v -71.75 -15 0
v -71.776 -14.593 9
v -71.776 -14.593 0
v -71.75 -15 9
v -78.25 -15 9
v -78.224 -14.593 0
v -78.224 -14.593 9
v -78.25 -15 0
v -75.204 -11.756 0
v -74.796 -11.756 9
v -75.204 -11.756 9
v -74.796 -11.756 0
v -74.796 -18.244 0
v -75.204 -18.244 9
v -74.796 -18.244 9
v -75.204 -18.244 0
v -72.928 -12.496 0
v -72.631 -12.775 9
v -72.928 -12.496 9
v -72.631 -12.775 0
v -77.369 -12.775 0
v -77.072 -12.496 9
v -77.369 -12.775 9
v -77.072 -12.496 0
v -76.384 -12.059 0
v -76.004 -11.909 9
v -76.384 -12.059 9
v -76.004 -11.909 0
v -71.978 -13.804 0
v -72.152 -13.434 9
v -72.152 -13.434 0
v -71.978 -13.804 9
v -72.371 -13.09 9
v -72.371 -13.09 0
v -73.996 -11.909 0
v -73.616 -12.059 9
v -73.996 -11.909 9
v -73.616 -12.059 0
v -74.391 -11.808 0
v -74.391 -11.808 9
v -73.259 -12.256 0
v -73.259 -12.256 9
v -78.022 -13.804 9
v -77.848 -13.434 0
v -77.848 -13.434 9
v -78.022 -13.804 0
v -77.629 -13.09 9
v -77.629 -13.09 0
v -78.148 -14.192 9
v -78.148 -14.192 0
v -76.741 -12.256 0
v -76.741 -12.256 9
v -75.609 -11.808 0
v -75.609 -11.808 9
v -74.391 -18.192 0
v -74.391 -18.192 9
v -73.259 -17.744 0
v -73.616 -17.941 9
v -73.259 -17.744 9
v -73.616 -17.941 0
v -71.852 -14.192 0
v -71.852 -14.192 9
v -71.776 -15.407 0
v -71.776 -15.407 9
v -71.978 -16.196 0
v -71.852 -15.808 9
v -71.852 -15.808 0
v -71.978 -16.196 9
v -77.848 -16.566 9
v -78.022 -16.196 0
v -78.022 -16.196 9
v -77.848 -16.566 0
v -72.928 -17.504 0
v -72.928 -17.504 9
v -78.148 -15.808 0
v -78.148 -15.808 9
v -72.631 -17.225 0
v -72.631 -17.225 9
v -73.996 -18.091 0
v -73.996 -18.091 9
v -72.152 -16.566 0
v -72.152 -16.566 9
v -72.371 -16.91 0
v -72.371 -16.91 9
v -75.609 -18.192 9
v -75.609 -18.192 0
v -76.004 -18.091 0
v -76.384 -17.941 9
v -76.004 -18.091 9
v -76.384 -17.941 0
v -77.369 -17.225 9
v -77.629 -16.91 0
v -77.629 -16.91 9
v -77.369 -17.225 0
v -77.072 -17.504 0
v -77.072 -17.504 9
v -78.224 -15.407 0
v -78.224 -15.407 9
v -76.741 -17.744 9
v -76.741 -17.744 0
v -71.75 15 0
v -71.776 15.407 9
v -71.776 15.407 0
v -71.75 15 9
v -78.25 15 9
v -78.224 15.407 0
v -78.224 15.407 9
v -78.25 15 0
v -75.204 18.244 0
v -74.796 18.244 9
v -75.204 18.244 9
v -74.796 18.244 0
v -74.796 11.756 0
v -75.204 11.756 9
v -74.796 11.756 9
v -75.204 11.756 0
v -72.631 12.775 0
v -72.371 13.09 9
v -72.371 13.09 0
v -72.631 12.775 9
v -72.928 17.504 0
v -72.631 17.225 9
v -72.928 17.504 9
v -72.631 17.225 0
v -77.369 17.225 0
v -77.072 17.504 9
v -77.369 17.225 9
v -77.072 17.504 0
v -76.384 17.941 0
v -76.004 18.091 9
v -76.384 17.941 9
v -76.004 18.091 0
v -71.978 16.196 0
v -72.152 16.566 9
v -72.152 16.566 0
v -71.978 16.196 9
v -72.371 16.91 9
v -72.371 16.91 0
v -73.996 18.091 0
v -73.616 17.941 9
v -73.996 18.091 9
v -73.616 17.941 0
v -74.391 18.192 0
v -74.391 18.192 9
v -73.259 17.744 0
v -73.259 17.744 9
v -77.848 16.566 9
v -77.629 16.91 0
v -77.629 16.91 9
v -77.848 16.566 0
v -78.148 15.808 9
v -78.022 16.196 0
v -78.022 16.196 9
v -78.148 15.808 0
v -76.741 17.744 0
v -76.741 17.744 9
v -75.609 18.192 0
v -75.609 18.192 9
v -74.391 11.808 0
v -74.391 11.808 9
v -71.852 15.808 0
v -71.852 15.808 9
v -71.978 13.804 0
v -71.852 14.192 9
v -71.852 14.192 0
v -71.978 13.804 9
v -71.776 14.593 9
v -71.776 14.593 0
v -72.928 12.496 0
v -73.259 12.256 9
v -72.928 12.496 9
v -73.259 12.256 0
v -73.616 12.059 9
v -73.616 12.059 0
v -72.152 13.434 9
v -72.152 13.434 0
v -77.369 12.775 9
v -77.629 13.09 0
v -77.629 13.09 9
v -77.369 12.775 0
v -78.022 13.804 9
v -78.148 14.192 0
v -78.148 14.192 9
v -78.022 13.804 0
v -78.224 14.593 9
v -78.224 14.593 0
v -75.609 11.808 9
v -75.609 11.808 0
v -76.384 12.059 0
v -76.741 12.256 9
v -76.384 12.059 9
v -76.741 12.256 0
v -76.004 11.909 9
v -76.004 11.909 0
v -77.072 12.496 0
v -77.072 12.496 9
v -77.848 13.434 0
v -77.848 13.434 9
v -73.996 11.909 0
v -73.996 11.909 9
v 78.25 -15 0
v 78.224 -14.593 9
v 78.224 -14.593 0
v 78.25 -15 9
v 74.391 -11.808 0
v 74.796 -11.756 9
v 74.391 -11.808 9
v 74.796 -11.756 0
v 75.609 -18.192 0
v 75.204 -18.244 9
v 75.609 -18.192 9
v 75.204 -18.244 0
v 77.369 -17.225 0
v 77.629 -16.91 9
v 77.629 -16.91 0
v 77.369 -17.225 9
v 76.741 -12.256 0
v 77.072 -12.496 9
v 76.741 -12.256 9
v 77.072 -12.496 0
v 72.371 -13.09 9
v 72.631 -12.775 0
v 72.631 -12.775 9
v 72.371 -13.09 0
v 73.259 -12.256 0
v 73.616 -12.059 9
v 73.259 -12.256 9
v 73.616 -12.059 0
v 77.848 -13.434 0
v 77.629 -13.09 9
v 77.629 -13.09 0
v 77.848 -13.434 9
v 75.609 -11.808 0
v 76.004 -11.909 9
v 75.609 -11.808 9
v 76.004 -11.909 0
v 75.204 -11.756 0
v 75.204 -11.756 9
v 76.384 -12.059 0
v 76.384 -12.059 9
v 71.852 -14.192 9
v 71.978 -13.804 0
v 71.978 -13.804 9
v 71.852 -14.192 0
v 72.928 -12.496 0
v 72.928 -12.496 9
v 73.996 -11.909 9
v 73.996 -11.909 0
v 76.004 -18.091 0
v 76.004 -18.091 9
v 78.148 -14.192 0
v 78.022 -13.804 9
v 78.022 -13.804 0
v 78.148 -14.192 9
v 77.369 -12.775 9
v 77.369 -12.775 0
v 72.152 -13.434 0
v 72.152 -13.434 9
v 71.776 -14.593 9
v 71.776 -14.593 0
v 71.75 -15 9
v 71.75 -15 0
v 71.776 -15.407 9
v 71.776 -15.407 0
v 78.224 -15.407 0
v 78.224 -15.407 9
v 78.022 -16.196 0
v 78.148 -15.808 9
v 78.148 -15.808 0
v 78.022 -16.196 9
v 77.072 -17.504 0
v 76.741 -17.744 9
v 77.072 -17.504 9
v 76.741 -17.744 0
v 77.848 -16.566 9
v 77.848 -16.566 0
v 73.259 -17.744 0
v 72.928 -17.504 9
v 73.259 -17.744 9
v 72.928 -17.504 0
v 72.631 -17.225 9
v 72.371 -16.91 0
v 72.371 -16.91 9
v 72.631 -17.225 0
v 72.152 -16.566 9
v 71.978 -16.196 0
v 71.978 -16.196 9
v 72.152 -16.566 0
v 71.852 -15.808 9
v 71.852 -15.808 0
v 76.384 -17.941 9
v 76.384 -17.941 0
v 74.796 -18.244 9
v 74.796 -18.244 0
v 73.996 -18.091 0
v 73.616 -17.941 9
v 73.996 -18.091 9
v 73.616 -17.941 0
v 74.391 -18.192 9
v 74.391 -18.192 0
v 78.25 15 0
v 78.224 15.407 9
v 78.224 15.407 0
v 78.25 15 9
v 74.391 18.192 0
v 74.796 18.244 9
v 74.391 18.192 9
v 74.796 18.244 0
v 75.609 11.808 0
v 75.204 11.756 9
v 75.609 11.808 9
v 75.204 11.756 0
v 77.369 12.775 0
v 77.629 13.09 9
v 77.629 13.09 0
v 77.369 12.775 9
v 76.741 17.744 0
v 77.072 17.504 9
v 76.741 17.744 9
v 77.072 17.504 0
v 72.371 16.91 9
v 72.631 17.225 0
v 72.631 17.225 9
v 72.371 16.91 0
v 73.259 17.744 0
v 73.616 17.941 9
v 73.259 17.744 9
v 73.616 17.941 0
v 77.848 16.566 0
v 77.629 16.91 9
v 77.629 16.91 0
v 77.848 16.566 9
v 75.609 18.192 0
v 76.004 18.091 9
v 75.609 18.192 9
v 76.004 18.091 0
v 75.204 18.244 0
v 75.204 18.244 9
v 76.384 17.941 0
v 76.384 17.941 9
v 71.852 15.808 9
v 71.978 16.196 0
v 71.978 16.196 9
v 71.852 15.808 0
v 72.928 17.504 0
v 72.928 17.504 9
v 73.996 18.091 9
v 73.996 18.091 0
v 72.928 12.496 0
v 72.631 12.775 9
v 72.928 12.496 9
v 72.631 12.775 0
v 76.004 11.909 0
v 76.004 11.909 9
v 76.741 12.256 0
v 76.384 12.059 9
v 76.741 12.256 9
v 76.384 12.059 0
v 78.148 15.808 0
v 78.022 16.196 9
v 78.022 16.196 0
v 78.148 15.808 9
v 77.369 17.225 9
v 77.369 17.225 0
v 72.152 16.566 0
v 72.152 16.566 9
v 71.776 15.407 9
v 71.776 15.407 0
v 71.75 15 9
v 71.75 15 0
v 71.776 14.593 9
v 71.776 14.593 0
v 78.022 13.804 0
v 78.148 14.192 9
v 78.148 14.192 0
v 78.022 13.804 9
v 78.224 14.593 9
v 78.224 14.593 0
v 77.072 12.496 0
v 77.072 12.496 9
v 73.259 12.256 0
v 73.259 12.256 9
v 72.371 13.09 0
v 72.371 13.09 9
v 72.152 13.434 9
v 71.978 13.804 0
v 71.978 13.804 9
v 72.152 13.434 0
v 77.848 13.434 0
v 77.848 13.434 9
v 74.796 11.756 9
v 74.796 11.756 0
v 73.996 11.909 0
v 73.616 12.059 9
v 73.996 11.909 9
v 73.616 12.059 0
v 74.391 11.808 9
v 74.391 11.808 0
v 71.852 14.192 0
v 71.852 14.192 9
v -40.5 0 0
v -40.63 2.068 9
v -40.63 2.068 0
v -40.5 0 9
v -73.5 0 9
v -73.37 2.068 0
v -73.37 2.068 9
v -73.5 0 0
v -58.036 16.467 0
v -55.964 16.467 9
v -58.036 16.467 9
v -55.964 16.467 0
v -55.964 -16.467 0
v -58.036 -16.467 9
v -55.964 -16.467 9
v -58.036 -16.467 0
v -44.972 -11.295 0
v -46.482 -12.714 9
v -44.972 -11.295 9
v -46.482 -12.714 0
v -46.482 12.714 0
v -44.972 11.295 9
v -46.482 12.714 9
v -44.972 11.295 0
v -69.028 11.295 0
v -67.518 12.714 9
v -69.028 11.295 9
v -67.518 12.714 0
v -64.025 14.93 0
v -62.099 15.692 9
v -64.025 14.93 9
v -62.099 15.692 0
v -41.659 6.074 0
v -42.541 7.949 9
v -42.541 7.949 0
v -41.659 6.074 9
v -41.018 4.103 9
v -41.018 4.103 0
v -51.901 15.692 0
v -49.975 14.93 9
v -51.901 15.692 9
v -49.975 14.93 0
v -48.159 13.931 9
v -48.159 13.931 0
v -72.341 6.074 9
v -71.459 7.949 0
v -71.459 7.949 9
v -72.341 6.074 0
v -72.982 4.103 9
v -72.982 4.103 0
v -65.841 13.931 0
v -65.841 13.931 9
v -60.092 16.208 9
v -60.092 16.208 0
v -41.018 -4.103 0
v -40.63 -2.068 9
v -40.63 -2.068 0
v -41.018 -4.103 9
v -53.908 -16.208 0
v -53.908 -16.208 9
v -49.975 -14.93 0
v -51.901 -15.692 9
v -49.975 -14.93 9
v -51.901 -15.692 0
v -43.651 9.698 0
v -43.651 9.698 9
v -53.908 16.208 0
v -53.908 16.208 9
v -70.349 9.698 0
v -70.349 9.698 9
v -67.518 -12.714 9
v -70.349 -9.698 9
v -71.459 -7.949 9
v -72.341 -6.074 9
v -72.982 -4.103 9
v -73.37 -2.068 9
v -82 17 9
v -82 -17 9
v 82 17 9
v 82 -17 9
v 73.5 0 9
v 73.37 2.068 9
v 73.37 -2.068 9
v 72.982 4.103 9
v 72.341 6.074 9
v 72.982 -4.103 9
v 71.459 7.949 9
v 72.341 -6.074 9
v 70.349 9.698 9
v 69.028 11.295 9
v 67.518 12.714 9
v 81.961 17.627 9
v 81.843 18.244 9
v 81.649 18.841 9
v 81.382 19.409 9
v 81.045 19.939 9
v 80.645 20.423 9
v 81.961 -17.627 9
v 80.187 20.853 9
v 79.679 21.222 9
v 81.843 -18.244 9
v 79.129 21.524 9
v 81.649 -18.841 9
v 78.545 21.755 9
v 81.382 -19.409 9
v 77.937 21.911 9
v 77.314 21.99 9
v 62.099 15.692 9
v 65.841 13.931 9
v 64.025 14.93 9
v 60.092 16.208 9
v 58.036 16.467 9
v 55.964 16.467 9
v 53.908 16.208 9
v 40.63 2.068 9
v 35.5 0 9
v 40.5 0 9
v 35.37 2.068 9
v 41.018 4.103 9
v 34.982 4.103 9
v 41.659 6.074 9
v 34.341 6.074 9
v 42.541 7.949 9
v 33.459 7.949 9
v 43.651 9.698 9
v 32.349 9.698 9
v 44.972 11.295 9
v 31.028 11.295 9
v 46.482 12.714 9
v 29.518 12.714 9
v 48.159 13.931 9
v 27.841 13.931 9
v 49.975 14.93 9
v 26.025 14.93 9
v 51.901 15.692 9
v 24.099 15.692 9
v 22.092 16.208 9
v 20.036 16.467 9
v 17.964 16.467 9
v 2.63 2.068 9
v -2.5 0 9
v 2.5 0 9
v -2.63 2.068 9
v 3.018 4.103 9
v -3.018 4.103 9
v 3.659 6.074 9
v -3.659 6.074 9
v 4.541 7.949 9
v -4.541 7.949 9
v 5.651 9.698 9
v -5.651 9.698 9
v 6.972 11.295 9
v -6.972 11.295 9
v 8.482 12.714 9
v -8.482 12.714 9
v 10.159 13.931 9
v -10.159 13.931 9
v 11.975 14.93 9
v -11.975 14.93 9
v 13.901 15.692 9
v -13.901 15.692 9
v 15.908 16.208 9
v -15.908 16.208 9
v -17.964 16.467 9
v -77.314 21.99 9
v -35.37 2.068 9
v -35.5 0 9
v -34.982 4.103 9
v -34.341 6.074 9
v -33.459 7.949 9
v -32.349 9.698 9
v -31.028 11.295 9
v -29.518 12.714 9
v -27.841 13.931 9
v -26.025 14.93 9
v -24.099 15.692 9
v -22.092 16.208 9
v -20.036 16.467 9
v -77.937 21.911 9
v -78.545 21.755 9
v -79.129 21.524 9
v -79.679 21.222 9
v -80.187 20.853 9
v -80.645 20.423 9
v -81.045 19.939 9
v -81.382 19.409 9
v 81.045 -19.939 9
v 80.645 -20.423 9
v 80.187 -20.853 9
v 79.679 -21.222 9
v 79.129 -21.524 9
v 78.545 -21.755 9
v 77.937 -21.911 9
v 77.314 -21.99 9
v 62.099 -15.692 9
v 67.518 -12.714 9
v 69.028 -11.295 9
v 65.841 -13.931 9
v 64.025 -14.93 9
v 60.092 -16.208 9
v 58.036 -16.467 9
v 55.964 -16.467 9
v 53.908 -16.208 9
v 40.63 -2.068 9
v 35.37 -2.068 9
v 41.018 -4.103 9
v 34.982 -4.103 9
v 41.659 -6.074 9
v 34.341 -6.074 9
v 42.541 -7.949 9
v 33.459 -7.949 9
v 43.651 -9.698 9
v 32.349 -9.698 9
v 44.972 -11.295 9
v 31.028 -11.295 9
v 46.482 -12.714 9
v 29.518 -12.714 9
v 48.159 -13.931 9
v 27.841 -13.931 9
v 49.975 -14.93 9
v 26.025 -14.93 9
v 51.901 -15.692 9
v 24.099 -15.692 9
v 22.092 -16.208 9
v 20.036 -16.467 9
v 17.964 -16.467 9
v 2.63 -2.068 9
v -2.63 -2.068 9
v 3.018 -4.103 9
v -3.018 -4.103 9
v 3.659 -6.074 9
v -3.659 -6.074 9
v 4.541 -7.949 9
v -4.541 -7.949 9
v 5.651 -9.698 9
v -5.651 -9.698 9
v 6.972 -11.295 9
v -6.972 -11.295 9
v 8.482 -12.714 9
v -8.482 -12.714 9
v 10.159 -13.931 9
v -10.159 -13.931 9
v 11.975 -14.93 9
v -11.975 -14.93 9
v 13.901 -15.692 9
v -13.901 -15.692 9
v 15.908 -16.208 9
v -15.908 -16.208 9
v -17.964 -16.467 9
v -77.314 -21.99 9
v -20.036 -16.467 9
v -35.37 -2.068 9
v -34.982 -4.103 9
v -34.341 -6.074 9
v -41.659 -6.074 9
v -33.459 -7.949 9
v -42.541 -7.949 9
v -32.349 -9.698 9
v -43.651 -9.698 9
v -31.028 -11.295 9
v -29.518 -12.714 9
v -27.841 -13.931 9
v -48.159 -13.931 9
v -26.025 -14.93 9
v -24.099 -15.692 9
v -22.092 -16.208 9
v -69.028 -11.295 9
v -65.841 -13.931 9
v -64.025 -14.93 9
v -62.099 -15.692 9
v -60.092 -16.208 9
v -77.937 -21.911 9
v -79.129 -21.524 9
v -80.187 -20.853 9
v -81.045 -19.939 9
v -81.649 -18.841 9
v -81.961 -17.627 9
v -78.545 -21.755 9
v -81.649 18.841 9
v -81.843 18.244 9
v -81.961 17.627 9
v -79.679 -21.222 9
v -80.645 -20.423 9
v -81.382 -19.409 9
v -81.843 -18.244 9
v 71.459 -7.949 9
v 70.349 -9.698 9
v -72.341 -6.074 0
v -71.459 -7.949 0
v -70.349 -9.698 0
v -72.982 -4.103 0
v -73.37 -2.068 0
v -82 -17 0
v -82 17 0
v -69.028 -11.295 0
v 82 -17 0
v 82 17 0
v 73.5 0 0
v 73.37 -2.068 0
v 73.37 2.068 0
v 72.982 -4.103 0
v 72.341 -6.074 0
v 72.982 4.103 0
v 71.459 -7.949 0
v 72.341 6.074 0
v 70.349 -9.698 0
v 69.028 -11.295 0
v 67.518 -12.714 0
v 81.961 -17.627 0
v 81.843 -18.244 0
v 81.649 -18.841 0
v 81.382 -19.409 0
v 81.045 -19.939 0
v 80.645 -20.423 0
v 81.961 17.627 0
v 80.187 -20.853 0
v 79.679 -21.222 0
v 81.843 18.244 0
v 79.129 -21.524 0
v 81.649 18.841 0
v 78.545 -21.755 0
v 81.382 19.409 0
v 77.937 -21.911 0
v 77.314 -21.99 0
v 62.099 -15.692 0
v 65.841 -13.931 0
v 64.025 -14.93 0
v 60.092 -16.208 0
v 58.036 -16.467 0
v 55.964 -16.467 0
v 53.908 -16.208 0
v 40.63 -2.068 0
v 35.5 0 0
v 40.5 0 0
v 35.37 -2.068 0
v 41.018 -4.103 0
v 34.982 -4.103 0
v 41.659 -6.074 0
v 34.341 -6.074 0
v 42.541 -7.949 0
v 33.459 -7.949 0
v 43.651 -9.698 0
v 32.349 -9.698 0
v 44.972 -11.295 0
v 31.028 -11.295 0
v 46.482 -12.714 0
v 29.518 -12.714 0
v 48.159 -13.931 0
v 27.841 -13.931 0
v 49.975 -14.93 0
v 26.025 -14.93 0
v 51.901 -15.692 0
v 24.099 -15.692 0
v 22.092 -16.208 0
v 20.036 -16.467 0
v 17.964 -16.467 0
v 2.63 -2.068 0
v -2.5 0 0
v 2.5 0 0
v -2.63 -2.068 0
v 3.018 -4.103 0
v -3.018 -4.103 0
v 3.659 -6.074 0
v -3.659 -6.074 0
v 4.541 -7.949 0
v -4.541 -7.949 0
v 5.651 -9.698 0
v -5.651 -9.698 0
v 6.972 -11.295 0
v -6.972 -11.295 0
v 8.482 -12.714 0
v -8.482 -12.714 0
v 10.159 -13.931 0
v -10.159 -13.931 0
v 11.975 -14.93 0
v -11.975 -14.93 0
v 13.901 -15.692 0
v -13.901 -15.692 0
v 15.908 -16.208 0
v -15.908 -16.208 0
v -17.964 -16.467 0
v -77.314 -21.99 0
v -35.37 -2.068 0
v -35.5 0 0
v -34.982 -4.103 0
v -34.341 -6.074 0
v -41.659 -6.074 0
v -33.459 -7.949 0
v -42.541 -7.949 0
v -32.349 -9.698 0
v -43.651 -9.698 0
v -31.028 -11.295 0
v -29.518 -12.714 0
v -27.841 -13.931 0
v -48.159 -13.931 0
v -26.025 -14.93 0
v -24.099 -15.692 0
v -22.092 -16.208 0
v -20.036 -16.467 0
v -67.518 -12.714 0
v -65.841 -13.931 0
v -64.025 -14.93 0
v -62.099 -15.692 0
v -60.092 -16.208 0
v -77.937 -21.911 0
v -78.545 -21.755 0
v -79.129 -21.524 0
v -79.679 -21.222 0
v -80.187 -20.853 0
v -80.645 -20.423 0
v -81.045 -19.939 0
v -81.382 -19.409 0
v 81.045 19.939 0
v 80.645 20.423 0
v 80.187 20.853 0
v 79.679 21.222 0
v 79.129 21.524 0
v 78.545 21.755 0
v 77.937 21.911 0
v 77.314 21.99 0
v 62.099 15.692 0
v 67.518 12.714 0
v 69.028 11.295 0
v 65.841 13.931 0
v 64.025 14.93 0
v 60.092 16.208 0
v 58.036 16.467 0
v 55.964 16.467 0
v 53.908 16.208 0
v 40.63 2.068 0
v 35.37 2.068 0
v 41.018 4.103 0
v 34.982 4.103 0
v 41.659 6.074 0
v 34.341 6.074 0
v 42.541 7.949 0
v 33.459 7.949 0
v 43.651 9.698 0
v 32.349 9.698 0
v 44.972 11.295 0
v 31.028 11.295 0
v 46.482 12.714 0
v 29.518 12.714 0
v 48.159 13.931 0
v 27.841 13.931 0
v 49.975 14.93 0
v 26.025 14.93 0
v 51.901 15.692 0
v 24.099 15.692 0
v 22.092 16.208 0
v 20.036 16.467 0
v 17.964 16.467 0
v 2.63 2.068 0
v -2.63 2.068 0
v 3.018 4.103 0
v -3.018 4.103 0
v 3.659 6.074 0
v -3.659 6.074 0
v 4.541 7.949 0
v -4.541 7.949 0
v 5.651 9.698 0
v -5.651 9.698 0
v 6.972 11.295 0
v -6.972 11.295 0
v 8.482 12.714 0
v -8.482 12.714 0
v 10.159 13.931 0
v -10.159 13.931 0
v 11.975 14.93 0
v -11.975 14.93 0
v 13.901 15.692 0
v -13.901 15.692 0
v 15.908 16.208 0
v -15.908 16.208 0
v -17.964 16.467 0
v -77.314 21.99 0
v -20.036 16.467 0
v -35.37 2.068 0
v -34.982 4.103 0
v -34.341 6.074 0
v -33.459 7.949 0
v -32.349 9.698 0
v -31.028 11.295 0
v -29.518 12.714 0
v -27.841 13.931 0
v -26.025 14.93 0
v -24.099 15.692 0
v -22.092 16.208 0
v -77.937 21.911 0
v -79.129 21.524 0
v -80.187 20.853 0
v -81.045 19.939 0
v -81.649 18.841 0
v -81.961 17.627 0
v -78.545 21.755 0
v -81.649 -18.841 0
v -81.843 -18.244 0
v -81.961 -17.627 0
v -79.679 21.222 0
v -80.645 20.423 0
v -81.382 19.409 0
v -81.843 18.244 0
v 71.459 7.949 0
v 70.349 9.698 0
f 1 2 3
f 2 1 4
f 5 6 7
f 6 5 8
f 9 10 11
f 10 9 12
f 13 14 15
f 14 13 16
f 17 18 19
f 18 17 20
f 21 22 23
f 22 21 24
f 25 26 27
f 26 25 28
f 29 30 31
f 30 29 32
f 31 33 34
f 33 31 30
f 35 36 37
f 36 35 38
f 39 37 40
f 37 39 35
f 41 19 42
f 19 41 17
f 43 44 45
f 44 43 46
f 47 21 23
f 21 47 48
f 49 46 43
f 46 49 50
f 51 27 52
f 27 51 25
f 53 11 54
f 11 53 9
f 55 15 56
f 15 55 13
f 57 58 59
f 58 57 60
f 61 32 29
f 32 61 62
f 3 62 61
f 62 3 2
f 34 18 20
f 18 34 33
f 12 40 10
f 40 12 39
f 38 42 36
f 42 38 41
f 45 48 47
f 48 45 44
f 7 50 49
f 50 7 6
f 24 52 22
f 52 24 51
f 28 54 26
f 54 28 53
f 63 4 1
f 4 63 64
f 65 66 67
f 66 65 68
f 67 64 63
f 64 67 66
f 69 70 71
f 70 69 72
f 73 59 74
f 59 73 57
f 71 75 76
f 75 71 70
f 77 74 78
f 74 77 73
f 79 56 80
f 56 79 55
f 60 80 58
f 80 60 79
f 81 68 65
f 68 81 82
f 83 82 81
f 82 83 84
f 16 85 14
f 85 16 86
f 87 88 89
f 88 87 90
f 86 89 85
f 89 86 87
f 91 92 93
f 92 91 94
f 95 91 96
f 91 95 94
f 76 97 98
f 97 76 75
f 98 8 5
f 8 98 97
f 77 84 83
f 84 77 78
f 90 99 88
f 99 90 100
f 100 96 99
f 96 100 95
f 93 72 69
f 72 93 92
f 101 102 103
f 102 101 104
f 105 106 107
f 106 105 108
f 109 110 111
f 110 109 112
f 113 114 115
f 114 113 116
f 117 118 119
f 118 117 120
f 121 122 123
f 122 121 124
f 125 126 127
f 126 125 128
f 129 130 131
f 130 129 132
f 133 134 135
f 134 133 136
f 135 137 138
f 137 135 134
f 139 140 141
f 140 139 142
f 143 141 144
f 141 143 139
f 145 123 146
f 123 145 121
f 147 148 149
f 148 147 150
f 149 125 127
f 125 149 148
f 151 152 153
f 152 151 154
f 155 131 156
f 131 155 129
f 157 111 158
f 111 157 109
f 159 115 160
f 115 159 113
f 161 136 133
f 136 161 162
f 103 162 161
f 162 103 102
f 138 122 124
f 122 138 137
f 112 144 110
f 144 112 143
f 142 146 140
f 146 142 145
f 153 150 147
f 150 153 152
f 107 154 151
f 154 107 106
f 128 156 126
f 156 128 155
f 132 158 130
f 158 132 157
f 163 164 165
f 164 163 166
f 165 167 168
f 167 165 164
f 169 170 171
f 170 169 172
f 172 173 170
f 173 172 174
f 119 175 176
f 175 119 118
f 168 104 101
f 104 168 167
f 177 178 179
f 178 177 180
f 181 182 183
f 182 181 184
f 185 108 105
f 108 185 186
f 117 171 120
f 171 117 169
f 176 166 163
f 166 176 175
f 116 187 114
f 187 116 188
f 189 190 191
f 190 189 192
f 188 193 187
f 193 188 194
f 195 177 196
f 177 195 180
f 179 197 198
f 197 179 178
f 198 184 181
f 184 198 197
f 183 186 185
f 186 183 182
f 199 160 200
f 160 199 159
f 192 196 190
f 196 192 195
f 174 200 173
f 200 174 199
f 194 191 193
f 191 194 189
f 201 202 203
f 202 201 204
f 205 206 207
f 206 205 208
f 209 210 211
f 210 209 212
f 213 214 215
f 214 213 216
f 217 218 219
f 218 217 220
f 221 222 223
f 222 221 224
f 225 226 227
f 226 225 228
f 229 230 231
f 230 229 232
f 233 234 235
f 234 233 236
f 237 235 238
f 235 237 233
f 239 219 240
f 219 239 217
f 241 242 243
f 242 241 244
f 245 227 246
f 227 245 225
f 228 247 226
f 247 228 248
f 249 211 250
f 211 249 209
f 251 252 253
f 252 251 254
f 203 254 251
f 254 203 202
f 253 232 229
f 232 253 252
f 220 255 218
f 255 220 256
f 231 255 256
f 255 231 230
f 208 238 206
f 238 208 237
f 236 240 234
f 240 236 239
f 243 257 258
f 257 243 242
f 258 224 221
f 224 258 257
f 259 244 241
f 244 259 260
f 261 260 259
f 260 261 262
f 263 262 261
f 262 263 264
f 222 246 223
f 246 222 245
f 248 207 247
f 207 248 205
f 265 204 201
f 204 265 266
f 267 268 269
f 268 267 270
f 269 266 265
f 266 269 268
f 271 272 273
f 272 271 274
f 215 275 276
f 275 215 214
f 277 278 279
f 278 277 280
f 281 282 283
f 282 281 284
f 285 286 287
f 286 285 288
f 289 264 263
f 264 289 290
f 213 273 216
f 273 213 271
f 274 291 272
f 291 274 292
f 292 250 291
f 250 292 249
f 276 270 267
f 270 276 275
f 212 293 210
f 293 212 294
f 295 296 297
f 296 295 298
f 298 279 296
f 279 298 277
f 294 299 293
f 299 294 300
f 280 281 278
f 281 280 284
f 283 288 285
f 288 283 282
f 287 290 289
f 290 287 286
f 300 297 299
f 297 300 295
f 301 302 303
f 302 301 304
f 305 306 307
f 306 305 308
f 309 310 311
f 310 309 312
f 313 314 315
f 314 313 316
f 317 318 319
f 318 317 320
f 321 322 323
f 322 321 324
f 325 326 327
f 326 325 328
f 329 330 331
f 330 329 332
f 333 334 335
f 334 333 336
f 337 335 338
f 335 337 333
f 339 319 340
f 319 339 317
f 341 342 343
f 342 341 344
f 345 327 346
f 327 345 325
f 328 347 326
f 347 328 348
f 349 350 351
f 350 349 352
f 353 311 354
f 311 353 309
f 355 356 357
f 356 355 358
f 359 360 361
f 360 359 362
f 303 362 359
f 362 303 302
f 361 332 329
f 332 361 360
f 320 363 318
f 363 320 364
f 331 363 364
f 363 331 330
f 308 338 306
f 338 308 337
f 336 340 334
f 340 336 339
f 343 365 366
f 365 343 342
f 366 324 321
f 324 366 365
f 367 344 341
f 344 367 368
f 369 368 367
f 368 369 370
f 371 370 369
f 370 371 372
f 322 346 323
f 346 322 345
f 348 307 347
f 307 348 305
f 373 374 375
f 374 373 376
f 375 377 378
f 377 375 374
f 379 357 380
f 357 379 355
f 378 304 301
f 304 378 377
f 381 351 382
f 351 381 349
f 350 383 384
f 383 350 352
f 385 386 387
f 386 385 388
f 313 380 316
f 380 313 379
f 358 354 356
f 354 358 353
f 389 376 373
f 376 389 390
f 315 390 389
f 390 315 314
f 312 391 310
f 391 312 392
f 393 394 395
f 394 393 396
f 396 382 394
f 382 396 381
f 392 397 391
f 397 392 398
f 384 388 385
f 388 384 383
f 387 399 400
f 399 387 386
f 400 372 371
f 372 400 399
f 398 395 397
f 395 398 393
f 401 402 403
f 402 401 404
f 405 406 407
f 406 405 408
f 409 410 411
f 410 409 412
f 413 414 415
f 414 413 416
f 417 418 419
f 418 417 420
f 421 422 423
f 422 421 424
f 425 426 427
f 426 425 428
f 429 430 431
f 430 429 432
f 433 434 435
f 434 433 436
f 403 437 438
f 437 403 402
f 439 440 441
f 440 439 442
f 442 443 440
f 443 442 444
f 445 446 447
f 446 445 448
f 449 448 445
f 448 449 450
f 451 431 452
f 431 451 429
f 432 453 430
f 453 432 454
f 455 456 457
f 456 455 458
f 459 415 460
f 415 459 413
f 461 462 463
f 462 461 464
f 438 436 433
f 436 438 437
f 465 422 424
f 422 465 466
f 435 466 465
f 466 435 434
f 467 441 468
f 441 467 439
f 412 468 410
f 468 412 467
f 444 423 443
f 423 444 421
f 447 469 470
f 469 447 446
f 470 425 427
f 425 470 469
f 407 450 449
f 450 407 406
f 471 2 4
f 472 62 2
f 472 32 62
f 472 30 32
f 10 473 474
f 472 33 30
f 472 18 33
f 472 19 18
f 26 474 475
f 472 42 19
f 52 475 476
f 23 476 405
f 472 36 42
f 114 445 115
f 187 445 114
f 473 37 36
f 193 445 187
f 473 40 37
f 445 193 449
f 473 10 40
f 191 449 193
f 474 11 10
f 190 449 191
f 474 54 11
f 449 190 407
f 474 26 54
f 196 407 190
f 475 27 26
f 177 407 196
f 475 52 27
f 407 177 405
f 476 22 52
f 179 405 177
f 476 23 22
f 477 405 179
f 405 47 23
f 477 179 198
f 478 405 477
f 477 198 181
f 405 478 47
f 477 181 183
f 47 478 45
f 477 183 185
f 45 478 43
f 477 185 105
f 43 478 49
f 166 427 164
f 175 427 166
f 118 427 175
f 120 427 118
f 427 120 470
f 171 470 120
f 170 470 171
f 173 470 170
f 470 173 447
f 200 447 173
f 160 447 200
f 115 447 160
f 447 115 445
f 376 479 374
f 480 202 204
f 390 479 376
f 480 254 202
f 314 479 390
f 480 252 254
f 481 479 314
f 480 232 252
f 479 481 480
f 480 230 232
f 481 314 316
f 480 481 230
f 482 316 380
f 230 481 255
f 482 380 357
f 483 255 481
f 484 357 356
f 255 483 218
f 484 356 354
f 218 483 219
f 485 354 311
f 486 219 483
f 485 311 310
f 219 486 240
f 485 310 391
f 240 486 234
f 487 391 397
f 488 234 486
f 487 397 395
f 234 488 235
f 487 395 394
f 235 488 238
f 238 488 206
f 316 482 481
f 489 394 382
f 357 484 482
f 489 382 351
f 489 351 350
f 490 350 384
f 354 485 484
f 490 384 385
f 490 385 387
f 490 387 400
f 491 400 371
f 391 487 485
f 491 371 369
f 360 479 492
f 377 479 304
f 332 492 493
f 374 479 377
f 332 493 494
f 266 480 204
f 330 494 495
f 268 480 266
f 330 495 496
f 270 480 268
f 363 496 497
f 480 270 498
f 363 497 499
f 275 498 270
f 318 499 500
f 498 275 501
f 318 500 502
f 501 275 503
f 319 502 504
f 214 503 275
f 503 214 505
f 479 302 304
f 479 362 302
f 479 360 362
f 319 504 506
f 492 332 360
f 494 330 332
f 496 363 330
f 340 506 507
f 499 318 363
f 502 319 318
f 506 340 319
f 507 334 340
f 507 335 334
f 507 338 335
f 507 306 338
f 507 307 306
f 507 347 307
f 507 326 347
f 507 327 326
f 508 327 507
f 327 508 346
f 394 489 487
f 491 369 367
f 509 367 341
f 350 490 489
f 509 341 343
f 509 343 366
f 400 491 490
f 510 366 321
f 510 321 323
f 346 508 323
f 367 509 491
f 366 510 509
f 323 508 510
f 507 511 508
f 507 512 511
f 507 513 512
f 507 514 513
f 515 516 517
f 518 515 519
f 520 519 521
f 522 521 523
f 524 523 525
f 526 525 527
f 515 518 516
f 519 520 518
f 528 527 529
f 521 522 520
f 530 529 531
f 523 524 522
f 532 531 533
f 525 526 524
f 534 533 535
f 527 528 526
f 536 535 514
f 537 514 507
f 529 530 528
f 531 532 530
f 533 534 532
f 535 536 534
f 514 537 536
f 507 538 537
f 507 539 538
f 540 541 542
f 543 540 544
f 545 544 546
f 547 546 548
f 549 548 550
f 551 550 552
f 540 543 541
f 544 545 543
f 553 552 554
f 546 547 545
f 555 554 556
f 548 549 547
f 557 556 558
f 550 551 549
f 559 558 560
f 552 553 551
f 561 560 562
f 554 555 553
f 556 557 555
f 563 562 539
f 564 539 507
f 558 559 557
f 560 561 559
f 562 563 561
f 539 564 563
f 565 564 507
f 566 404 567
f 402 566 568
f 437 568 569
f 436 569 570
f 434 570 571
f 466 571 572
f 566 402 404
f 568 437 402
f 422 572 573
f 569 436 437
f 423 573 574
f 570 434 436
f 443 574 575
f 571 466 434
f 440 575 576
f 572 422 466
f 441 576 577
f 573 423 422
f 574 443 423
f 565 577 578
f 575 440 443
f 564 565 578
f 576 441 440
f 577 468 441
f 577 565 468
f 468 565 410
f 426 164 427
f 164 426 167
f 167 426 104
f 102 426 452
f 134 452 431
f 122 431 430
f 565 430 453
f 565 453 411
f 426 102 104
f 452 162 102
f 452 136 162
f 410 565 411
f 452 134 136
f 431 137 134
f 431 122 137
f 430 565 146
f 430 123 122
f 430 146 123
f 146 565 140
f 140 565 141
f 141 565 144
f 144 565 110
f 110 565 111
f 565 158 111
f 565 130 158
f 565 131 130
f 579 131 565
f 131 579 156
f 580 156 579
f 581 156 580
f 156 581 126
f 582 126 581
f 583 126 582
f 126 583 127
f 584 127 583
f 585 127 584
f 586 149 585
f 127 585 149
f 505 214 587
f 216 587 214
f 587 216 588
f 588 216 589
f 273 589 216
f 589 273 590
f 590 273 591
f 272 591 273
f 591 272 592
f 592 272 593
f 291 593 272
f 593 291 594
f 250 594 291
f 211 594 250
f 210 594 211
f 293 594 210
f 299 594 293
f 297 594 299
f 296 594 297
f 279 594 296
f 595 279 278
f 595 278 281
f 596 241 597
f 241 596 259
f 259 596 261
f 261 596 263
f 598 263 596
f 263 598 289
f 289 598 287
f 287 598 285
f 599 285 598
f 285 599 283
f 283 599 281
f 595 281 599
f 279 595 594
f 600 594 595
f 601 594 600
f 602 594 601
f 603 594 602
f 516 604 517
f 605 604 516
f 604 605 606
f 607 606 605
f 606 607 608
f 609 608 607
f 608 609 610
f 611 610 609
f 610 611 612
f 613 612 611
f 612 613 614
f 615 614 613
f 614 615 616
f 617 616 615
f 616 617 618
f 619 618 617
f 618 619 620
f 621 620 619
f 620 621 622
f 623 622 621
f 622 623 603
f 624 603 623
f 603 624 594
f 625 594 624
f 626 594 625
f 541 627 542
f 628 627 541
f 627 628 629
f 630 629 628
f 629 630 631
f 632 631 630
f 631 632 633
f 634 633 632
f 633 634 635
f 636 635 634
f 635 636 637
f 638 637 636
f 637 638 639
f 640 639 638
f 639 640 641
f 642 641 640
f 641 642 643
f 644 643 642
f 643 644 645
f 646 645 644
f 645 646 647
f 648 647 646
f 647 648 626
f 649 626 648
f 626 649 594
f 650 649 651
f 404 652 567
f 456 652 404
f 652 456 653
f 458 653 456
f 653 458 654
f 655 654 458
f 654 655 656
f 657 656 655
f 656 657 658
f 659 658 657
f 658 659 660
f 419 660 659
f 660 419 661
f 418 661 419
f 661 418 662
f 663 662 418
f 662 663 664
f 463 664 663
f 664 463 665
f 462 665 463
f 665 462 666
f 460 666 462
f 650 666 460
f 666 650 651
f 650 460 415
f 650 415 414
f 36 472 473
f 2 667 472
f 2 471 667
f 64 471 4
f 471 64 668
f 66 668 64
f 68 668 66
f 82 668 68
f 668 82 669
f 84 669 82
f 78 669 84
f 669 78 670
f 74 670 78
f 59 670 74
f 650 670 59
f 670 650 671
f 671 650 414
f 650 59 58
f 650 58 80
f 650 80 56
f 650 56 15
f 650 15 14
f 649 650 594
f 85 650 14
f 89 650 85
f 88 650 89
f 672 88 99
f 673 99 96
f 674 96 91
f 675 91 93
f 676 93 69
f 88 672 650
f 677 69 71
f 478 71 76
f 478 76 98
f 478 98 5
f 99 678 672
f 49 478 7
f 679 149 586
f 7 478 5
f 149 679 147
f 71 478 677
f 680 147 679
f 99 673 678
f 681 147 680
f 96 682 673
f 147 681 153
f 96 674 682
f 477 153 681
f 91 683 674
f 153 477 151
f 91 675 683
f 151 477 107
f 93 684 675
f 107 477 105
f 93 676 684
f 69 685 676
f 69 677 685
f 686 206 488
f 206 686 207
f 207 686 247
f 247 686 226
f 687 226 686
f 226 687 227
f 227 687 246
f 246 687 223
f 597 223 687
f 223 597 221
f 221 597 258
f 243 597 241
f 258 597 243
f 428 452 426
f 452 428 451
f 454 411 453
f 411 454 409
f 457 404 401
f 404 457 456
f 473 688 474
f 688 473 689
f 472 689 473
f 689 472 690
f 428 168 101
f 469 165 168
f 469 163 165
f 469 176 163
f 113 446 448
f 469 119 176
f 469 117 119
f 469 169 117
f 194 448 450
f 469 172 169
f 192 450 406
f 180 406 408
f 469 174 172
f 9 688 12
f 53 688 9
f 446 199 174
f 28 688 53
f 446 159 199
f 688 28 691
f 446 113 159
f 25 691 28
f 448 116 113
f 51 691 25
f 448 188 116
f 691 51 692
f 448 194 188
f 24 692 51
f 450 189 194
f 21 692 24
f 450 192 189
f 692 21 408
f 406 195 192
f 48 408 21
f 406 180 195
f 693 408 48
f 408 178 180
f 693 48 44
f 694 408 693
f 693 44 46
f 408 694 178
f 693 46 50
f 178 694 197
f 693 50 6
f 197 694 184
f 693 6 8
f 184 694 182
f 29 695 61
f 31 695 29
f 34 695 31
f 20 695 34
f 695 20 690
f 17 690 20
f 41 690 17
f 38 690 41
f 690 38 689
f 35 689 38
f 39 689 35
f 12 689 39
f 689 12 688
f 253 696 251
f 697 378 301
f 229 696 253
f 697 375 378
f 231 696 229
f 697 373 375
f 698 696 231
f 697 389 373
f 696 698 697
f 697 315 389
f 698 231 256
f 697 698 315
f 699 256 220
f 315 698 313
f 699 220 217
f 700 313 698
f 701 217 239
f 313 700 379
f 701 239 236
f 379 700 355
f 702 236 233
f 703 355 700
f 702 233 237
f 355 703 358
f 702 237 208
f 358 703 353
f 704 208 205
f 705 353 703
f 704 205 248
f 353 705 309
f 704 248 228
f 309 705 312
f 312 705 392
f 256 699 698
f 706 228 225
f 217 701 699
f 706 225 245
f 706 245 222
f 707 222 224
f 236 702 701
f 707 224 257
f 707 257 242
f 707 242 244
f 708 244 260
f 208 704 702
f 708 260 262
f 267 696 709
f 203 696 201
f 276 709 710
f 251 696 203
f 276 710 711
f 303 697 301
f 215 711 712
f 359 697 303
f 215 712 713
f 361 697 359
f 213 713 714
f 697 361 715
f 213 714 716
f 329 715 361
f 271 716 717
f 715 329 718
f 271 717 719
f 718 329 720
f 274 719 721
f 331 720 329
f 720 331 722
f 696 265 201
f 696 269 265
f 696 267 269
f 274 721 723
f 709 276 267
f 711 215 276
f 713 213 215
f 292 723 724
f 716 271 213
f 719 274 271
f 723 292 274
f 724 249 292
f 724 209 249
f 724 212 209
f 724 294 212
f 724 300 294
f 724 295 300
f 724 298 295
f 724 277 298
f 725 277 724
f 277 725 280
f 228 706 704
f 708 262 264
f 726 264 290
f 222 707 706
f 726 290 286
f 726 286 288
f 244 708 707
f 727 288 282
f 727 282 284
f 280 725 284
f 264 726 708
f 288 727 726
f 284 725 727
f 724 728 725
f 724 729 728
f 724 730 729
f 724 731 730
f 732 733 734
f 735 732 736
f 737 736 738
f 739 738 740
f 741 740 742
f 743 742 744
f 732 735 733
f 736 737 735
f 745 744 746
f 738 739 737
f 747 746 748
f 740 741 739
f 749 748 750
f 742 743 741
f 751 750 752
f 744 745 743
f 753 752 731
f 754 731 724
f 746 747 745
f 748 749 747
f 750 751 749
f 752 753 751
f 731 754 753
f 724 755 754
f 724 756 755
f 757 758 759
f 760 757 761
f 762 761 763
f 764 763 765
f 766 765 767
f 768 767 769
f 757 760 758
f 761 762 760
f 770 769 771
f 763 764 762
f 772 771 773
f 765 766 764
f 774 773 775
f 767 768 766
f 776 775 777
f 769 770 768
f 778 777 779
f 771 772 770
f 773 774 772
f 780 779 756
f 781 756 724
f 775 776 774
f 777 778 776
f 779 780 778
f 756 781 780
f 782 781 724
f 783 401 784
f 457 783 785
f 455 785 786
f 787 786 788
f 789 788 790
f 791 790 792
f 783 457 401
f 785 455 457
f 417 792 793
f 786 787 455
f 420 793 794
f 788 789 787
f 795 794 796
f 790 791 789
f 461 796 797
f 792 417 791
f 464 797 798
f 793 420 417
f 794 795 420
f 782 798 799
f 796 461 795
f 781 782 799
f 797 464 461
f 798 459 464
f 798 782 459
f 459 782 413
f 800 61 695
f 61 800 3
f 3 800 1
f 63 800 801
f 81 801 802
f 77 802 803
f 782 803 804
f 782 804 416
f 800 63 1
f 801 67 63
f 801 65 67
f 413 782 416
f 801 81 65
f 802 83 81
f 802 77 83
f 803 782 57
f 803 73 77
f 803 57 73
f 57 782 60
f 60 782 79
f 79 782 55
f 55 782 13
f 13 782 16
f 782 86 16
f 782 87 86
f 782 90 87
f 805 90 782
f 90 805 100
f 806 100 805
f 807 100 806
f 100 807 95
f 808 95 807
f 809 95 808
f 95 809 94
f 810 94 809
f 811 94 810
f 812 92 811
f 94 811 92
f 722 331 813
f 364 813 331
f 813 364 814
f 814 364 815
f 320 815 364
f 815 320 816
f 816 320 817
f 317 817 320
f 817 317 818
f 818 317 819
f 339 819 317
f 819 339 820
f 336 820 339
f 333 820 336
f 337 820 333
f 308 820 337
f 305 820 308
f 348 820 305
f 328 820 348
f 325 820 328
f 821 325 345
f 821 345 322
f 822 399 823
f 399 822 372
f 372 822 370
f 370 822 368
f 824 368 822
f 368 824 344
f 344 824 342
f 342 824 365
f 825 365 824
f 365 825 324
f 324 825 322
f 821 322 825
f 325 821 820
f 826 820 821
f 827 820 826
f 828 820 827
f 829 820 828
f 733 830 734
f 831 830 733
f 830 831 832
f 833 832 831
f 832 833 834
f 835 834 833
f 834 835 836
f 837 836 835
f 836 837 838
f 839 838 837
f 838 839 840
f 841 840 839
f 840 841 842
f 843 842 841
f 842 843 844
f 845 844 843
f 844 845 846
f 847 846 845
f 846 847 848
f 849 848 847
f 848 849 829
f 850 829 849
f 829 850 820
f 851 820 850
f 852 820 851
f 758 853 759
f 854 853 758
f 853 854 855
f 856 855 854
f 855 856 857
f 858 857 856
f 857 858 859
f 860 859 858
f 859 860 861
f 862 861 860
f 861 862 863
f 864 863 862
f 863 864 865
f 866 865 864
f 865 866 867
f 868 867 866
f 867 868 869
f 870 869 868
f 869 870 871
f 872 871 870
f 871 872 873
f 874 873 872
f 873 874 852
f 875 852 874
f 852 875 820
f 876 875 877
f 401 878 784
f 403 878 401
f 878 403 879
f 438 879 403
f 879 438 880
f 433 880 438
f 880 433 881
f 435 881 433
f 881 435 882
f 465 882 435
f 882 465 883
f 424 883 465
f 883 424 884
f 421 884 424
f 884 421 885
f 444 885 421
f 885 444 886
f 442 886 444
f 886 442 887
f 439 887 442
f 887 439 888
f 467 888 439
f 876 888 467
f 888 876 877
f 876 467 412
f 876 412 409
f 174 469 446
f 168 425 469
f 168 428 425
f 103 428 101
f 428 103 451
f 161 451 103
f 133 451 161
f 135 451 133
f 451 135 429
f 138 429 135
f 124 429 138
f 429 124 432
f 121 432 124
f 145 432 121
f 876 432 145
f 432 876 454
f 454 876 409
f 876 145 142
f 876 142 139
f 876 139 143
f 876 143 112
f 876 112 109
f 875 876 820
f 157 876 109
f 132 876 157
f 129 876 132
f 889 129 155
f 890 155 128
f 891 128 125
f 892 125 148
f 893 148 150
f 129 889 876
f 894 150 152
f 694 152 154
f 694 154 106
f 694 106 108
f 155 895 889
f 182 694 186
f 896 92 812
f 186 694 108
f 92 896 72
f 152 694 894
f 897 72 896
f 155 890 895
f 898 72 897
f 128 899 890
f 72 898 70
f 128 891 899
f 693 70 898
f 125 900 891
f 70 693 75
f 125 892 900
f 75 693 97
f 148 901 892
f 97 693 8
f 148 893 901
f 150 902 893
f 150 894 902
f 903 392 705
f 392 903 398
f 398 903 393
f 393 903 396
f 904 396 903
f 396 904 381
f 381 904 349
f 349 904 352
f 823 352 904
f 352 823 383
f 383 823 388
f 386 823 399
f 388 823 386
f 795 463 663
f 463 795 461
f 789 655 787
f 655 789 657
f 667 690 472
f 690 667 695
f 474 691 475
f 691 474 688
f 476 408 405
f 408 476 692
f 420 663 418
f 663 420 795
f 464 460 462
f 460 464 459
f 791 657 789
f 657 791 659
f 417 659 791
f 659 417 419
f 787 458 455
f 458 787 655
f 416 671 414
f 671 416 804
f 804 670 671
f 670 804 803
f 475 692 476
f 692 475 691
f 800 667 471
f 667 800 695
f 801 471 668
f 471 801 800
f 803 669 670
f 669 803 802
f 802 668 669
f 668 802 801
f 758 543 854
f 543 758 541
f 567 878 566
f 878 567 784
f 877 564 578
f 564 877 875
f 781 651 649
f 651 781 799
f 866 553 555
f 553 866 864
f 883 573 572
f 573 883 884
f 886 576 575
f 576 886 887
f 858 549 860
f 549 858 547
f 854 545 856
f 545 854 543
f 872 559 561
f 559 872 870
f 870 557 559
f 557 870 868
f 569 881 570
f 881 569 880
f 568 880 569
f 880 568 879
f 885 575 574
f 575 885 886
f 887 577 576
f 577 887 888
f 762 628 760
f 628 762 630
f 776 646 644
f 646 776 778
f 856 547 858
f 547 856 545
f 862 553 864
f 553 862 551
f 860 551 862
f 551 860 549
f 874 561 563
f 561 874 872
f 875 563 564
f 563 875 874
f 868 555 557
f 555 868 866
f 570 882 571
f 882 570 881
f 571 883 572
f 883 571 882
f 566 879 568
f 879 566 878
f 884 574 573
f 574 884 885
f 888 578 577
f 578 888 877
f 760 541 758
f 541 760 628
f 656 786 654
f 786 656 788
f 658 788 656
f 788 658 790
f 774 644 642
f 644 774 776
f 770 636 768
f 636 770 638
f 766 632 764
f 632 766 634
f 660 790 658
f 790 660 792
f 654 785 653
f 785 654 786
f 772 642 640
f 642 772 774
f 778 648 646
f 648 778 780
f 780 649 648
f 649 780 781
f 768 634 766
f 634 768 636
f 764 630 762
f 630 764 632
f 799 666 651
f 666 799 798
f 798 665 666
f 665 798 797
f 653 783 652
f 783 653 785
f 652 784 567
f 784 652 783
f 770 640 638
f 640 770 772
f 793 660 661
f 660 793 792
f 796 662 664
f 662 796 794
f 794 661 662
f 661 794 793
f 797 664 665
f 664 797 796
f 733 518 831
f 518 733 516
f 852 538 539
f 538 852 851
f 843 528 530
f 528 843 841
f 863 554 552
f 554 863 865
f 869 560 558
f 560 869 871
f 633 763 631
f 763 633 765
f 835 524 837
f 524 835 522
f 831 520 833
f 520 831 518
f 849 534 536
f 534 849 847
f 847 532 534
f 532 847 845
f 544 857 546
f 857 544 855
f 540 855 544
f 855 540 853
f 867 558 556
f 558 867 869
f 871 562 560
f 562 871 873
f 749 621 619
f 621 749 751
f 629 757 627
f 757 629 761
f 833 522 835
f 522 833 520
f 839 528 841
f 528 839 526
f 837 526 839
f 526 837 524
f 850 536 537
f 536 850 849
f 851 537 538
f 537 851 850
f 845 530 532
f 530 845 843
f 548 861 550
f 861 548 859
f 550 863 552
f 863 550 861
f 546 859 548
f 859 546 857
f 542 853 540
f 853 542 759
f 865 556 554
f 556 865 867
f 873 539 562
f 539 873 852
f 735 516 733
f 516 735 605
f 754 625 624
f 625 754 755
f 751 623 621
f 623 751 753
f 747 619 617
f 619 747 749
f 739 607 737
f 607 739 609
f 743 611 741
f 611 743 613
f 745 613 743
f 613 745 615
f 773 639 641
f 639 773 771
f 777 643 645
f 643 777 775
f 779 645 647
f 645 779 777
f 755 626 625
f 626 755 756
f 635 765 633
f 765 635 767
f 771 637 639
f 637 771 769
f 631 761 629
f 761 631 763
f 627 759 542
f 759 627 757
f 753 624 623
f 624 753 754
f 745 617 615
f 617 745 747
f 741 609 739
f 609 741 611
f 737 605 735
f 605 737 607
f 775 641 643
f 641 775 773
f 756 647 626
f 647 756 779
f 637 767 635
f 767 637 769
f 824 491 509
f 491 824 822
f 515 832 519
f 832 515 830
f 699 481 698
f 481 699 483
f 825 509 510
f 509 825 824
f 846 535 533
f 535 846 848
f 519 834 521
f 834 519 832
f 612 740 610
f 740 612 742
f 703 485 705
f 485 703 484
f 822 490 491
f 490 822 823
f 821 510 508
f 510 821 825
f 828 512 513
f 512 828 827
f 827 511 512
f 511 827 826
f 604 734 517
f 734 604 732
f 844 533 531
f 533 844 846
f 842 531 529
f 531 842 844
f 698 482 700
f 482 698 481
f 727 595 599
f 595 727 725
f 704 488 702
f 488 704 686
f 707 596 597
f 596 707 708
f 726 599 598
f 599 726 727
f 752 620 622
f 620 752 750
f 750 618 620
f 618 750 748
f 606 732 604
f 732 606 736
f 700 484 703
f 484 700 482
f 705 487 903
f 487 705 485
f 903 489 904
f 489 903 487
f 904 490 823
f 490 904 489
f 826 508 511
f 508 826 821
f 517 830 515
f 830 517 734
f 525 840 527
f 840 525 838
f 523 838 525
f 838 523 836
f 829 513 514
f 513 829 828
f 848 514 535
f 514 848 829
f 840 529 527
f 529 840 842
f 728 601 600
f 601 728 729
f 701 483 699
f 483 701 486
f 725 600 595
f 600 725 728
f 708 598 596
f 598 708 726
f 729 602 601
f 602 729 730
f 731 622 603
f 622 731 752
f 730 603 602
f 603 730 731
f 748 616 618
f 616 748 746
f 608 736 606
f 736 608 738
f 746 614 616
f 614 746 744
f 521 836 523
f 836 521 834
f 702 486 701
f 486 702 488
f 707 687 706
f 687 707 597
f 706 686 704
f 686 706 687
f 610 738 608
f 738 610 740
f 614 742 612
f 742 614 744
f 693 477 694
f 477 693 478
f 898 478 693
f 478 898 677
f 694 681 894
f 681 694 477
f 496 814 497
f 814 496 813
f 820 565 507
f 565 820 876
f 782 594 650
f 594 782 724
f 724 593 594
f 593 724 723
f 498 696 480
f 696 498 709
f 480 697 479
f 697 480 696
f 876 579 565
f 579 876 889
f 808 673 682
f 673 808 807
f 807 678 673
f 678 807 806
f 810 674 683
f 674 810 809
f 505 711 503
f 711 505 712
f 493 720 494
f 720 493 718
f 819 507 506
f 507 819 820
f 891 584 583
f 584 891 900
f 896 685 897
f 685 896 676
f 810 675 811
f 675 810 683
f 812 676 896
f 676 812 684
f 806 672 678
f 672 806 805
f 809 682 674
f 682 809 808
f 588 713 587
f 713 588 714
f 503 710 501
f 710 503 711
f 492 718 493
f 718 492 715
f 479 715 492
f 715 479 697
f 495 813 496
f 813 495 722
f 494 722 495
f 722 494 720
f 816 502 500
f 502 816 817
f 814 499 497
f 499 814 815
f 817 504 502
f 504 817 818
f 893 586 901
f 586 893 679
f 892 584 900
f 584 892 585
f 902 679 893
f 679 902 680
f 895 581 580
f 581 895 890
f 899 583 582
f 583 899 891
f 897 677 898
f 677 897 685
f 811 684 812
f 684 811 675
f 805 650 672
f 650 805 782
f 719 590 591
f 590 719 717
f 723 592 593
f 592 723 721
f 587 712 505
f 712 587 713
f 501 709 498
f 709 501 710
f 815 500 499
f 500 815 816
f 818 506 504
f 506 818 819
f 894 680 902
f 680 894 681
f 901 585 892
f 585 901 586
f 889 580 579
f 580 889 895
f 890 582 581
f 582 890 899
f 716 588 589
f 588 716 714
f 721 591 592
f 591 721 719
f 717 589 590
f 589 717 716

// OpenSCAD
$fn = 50;


difference() {
	union() {
		hull() {
			translate(v = [-77.0000000000, 17.0000000000, 0]) {
				cylinder(h = 9, r = 5);
			}
			translate(v = [77.0000000000, 17.0000000000, 0]) {
				cylinder(h = 9, r = 5);
			}
			translate(v = [-77.0000000000, -17.0000000000, 0]) {
				cylinder(h = 9, r = 5);
			}
			translate(v = [77.0000000000, -17.0000000000, 0]) {
				cylinder(h = 9, r = 5);
			}
		}
	}
	union() {
		#translate(v = [-75.0000000000, -15.0000000000, -100.0000000000]) {
			cylinder(h = 200, r = 3.2500000000);
		}
		#translate(v = [-75.0000000000, 15.0000000000, -100.0000000000]) {
			cylinder(h = 200, r = 3.2500000000);
		}
		#translate(v = [75.0000000000, -15.0000000000, -100.0000000000]) {
			cylinder(h = 200, r = 3.2500000000);
		}
		#translate(v = [75.0000000000, 15.0000000000, -100.0000000000]) {
			cylinder(h = 200, r = 3.2500000000);
		}
		#translate(v = [-57.0000000000, 0, 0]) {
			cylinder(h = 9, r = 16.5000000000);
		}
		#translate(v = [-19.0000000000, 0, 0]) {
			cylinder(h = 9, r = 16.5000000000);
		}
		#translate(v = [19.0000000000, 0, 0]) {
			cylinder(h = 9, r = 16.5000000000);
		}
		#translate(v = [57.0000000000, 0, 0]) {
			cylinder(h = 9, r = 16.5000000000);
		}
	}
}
